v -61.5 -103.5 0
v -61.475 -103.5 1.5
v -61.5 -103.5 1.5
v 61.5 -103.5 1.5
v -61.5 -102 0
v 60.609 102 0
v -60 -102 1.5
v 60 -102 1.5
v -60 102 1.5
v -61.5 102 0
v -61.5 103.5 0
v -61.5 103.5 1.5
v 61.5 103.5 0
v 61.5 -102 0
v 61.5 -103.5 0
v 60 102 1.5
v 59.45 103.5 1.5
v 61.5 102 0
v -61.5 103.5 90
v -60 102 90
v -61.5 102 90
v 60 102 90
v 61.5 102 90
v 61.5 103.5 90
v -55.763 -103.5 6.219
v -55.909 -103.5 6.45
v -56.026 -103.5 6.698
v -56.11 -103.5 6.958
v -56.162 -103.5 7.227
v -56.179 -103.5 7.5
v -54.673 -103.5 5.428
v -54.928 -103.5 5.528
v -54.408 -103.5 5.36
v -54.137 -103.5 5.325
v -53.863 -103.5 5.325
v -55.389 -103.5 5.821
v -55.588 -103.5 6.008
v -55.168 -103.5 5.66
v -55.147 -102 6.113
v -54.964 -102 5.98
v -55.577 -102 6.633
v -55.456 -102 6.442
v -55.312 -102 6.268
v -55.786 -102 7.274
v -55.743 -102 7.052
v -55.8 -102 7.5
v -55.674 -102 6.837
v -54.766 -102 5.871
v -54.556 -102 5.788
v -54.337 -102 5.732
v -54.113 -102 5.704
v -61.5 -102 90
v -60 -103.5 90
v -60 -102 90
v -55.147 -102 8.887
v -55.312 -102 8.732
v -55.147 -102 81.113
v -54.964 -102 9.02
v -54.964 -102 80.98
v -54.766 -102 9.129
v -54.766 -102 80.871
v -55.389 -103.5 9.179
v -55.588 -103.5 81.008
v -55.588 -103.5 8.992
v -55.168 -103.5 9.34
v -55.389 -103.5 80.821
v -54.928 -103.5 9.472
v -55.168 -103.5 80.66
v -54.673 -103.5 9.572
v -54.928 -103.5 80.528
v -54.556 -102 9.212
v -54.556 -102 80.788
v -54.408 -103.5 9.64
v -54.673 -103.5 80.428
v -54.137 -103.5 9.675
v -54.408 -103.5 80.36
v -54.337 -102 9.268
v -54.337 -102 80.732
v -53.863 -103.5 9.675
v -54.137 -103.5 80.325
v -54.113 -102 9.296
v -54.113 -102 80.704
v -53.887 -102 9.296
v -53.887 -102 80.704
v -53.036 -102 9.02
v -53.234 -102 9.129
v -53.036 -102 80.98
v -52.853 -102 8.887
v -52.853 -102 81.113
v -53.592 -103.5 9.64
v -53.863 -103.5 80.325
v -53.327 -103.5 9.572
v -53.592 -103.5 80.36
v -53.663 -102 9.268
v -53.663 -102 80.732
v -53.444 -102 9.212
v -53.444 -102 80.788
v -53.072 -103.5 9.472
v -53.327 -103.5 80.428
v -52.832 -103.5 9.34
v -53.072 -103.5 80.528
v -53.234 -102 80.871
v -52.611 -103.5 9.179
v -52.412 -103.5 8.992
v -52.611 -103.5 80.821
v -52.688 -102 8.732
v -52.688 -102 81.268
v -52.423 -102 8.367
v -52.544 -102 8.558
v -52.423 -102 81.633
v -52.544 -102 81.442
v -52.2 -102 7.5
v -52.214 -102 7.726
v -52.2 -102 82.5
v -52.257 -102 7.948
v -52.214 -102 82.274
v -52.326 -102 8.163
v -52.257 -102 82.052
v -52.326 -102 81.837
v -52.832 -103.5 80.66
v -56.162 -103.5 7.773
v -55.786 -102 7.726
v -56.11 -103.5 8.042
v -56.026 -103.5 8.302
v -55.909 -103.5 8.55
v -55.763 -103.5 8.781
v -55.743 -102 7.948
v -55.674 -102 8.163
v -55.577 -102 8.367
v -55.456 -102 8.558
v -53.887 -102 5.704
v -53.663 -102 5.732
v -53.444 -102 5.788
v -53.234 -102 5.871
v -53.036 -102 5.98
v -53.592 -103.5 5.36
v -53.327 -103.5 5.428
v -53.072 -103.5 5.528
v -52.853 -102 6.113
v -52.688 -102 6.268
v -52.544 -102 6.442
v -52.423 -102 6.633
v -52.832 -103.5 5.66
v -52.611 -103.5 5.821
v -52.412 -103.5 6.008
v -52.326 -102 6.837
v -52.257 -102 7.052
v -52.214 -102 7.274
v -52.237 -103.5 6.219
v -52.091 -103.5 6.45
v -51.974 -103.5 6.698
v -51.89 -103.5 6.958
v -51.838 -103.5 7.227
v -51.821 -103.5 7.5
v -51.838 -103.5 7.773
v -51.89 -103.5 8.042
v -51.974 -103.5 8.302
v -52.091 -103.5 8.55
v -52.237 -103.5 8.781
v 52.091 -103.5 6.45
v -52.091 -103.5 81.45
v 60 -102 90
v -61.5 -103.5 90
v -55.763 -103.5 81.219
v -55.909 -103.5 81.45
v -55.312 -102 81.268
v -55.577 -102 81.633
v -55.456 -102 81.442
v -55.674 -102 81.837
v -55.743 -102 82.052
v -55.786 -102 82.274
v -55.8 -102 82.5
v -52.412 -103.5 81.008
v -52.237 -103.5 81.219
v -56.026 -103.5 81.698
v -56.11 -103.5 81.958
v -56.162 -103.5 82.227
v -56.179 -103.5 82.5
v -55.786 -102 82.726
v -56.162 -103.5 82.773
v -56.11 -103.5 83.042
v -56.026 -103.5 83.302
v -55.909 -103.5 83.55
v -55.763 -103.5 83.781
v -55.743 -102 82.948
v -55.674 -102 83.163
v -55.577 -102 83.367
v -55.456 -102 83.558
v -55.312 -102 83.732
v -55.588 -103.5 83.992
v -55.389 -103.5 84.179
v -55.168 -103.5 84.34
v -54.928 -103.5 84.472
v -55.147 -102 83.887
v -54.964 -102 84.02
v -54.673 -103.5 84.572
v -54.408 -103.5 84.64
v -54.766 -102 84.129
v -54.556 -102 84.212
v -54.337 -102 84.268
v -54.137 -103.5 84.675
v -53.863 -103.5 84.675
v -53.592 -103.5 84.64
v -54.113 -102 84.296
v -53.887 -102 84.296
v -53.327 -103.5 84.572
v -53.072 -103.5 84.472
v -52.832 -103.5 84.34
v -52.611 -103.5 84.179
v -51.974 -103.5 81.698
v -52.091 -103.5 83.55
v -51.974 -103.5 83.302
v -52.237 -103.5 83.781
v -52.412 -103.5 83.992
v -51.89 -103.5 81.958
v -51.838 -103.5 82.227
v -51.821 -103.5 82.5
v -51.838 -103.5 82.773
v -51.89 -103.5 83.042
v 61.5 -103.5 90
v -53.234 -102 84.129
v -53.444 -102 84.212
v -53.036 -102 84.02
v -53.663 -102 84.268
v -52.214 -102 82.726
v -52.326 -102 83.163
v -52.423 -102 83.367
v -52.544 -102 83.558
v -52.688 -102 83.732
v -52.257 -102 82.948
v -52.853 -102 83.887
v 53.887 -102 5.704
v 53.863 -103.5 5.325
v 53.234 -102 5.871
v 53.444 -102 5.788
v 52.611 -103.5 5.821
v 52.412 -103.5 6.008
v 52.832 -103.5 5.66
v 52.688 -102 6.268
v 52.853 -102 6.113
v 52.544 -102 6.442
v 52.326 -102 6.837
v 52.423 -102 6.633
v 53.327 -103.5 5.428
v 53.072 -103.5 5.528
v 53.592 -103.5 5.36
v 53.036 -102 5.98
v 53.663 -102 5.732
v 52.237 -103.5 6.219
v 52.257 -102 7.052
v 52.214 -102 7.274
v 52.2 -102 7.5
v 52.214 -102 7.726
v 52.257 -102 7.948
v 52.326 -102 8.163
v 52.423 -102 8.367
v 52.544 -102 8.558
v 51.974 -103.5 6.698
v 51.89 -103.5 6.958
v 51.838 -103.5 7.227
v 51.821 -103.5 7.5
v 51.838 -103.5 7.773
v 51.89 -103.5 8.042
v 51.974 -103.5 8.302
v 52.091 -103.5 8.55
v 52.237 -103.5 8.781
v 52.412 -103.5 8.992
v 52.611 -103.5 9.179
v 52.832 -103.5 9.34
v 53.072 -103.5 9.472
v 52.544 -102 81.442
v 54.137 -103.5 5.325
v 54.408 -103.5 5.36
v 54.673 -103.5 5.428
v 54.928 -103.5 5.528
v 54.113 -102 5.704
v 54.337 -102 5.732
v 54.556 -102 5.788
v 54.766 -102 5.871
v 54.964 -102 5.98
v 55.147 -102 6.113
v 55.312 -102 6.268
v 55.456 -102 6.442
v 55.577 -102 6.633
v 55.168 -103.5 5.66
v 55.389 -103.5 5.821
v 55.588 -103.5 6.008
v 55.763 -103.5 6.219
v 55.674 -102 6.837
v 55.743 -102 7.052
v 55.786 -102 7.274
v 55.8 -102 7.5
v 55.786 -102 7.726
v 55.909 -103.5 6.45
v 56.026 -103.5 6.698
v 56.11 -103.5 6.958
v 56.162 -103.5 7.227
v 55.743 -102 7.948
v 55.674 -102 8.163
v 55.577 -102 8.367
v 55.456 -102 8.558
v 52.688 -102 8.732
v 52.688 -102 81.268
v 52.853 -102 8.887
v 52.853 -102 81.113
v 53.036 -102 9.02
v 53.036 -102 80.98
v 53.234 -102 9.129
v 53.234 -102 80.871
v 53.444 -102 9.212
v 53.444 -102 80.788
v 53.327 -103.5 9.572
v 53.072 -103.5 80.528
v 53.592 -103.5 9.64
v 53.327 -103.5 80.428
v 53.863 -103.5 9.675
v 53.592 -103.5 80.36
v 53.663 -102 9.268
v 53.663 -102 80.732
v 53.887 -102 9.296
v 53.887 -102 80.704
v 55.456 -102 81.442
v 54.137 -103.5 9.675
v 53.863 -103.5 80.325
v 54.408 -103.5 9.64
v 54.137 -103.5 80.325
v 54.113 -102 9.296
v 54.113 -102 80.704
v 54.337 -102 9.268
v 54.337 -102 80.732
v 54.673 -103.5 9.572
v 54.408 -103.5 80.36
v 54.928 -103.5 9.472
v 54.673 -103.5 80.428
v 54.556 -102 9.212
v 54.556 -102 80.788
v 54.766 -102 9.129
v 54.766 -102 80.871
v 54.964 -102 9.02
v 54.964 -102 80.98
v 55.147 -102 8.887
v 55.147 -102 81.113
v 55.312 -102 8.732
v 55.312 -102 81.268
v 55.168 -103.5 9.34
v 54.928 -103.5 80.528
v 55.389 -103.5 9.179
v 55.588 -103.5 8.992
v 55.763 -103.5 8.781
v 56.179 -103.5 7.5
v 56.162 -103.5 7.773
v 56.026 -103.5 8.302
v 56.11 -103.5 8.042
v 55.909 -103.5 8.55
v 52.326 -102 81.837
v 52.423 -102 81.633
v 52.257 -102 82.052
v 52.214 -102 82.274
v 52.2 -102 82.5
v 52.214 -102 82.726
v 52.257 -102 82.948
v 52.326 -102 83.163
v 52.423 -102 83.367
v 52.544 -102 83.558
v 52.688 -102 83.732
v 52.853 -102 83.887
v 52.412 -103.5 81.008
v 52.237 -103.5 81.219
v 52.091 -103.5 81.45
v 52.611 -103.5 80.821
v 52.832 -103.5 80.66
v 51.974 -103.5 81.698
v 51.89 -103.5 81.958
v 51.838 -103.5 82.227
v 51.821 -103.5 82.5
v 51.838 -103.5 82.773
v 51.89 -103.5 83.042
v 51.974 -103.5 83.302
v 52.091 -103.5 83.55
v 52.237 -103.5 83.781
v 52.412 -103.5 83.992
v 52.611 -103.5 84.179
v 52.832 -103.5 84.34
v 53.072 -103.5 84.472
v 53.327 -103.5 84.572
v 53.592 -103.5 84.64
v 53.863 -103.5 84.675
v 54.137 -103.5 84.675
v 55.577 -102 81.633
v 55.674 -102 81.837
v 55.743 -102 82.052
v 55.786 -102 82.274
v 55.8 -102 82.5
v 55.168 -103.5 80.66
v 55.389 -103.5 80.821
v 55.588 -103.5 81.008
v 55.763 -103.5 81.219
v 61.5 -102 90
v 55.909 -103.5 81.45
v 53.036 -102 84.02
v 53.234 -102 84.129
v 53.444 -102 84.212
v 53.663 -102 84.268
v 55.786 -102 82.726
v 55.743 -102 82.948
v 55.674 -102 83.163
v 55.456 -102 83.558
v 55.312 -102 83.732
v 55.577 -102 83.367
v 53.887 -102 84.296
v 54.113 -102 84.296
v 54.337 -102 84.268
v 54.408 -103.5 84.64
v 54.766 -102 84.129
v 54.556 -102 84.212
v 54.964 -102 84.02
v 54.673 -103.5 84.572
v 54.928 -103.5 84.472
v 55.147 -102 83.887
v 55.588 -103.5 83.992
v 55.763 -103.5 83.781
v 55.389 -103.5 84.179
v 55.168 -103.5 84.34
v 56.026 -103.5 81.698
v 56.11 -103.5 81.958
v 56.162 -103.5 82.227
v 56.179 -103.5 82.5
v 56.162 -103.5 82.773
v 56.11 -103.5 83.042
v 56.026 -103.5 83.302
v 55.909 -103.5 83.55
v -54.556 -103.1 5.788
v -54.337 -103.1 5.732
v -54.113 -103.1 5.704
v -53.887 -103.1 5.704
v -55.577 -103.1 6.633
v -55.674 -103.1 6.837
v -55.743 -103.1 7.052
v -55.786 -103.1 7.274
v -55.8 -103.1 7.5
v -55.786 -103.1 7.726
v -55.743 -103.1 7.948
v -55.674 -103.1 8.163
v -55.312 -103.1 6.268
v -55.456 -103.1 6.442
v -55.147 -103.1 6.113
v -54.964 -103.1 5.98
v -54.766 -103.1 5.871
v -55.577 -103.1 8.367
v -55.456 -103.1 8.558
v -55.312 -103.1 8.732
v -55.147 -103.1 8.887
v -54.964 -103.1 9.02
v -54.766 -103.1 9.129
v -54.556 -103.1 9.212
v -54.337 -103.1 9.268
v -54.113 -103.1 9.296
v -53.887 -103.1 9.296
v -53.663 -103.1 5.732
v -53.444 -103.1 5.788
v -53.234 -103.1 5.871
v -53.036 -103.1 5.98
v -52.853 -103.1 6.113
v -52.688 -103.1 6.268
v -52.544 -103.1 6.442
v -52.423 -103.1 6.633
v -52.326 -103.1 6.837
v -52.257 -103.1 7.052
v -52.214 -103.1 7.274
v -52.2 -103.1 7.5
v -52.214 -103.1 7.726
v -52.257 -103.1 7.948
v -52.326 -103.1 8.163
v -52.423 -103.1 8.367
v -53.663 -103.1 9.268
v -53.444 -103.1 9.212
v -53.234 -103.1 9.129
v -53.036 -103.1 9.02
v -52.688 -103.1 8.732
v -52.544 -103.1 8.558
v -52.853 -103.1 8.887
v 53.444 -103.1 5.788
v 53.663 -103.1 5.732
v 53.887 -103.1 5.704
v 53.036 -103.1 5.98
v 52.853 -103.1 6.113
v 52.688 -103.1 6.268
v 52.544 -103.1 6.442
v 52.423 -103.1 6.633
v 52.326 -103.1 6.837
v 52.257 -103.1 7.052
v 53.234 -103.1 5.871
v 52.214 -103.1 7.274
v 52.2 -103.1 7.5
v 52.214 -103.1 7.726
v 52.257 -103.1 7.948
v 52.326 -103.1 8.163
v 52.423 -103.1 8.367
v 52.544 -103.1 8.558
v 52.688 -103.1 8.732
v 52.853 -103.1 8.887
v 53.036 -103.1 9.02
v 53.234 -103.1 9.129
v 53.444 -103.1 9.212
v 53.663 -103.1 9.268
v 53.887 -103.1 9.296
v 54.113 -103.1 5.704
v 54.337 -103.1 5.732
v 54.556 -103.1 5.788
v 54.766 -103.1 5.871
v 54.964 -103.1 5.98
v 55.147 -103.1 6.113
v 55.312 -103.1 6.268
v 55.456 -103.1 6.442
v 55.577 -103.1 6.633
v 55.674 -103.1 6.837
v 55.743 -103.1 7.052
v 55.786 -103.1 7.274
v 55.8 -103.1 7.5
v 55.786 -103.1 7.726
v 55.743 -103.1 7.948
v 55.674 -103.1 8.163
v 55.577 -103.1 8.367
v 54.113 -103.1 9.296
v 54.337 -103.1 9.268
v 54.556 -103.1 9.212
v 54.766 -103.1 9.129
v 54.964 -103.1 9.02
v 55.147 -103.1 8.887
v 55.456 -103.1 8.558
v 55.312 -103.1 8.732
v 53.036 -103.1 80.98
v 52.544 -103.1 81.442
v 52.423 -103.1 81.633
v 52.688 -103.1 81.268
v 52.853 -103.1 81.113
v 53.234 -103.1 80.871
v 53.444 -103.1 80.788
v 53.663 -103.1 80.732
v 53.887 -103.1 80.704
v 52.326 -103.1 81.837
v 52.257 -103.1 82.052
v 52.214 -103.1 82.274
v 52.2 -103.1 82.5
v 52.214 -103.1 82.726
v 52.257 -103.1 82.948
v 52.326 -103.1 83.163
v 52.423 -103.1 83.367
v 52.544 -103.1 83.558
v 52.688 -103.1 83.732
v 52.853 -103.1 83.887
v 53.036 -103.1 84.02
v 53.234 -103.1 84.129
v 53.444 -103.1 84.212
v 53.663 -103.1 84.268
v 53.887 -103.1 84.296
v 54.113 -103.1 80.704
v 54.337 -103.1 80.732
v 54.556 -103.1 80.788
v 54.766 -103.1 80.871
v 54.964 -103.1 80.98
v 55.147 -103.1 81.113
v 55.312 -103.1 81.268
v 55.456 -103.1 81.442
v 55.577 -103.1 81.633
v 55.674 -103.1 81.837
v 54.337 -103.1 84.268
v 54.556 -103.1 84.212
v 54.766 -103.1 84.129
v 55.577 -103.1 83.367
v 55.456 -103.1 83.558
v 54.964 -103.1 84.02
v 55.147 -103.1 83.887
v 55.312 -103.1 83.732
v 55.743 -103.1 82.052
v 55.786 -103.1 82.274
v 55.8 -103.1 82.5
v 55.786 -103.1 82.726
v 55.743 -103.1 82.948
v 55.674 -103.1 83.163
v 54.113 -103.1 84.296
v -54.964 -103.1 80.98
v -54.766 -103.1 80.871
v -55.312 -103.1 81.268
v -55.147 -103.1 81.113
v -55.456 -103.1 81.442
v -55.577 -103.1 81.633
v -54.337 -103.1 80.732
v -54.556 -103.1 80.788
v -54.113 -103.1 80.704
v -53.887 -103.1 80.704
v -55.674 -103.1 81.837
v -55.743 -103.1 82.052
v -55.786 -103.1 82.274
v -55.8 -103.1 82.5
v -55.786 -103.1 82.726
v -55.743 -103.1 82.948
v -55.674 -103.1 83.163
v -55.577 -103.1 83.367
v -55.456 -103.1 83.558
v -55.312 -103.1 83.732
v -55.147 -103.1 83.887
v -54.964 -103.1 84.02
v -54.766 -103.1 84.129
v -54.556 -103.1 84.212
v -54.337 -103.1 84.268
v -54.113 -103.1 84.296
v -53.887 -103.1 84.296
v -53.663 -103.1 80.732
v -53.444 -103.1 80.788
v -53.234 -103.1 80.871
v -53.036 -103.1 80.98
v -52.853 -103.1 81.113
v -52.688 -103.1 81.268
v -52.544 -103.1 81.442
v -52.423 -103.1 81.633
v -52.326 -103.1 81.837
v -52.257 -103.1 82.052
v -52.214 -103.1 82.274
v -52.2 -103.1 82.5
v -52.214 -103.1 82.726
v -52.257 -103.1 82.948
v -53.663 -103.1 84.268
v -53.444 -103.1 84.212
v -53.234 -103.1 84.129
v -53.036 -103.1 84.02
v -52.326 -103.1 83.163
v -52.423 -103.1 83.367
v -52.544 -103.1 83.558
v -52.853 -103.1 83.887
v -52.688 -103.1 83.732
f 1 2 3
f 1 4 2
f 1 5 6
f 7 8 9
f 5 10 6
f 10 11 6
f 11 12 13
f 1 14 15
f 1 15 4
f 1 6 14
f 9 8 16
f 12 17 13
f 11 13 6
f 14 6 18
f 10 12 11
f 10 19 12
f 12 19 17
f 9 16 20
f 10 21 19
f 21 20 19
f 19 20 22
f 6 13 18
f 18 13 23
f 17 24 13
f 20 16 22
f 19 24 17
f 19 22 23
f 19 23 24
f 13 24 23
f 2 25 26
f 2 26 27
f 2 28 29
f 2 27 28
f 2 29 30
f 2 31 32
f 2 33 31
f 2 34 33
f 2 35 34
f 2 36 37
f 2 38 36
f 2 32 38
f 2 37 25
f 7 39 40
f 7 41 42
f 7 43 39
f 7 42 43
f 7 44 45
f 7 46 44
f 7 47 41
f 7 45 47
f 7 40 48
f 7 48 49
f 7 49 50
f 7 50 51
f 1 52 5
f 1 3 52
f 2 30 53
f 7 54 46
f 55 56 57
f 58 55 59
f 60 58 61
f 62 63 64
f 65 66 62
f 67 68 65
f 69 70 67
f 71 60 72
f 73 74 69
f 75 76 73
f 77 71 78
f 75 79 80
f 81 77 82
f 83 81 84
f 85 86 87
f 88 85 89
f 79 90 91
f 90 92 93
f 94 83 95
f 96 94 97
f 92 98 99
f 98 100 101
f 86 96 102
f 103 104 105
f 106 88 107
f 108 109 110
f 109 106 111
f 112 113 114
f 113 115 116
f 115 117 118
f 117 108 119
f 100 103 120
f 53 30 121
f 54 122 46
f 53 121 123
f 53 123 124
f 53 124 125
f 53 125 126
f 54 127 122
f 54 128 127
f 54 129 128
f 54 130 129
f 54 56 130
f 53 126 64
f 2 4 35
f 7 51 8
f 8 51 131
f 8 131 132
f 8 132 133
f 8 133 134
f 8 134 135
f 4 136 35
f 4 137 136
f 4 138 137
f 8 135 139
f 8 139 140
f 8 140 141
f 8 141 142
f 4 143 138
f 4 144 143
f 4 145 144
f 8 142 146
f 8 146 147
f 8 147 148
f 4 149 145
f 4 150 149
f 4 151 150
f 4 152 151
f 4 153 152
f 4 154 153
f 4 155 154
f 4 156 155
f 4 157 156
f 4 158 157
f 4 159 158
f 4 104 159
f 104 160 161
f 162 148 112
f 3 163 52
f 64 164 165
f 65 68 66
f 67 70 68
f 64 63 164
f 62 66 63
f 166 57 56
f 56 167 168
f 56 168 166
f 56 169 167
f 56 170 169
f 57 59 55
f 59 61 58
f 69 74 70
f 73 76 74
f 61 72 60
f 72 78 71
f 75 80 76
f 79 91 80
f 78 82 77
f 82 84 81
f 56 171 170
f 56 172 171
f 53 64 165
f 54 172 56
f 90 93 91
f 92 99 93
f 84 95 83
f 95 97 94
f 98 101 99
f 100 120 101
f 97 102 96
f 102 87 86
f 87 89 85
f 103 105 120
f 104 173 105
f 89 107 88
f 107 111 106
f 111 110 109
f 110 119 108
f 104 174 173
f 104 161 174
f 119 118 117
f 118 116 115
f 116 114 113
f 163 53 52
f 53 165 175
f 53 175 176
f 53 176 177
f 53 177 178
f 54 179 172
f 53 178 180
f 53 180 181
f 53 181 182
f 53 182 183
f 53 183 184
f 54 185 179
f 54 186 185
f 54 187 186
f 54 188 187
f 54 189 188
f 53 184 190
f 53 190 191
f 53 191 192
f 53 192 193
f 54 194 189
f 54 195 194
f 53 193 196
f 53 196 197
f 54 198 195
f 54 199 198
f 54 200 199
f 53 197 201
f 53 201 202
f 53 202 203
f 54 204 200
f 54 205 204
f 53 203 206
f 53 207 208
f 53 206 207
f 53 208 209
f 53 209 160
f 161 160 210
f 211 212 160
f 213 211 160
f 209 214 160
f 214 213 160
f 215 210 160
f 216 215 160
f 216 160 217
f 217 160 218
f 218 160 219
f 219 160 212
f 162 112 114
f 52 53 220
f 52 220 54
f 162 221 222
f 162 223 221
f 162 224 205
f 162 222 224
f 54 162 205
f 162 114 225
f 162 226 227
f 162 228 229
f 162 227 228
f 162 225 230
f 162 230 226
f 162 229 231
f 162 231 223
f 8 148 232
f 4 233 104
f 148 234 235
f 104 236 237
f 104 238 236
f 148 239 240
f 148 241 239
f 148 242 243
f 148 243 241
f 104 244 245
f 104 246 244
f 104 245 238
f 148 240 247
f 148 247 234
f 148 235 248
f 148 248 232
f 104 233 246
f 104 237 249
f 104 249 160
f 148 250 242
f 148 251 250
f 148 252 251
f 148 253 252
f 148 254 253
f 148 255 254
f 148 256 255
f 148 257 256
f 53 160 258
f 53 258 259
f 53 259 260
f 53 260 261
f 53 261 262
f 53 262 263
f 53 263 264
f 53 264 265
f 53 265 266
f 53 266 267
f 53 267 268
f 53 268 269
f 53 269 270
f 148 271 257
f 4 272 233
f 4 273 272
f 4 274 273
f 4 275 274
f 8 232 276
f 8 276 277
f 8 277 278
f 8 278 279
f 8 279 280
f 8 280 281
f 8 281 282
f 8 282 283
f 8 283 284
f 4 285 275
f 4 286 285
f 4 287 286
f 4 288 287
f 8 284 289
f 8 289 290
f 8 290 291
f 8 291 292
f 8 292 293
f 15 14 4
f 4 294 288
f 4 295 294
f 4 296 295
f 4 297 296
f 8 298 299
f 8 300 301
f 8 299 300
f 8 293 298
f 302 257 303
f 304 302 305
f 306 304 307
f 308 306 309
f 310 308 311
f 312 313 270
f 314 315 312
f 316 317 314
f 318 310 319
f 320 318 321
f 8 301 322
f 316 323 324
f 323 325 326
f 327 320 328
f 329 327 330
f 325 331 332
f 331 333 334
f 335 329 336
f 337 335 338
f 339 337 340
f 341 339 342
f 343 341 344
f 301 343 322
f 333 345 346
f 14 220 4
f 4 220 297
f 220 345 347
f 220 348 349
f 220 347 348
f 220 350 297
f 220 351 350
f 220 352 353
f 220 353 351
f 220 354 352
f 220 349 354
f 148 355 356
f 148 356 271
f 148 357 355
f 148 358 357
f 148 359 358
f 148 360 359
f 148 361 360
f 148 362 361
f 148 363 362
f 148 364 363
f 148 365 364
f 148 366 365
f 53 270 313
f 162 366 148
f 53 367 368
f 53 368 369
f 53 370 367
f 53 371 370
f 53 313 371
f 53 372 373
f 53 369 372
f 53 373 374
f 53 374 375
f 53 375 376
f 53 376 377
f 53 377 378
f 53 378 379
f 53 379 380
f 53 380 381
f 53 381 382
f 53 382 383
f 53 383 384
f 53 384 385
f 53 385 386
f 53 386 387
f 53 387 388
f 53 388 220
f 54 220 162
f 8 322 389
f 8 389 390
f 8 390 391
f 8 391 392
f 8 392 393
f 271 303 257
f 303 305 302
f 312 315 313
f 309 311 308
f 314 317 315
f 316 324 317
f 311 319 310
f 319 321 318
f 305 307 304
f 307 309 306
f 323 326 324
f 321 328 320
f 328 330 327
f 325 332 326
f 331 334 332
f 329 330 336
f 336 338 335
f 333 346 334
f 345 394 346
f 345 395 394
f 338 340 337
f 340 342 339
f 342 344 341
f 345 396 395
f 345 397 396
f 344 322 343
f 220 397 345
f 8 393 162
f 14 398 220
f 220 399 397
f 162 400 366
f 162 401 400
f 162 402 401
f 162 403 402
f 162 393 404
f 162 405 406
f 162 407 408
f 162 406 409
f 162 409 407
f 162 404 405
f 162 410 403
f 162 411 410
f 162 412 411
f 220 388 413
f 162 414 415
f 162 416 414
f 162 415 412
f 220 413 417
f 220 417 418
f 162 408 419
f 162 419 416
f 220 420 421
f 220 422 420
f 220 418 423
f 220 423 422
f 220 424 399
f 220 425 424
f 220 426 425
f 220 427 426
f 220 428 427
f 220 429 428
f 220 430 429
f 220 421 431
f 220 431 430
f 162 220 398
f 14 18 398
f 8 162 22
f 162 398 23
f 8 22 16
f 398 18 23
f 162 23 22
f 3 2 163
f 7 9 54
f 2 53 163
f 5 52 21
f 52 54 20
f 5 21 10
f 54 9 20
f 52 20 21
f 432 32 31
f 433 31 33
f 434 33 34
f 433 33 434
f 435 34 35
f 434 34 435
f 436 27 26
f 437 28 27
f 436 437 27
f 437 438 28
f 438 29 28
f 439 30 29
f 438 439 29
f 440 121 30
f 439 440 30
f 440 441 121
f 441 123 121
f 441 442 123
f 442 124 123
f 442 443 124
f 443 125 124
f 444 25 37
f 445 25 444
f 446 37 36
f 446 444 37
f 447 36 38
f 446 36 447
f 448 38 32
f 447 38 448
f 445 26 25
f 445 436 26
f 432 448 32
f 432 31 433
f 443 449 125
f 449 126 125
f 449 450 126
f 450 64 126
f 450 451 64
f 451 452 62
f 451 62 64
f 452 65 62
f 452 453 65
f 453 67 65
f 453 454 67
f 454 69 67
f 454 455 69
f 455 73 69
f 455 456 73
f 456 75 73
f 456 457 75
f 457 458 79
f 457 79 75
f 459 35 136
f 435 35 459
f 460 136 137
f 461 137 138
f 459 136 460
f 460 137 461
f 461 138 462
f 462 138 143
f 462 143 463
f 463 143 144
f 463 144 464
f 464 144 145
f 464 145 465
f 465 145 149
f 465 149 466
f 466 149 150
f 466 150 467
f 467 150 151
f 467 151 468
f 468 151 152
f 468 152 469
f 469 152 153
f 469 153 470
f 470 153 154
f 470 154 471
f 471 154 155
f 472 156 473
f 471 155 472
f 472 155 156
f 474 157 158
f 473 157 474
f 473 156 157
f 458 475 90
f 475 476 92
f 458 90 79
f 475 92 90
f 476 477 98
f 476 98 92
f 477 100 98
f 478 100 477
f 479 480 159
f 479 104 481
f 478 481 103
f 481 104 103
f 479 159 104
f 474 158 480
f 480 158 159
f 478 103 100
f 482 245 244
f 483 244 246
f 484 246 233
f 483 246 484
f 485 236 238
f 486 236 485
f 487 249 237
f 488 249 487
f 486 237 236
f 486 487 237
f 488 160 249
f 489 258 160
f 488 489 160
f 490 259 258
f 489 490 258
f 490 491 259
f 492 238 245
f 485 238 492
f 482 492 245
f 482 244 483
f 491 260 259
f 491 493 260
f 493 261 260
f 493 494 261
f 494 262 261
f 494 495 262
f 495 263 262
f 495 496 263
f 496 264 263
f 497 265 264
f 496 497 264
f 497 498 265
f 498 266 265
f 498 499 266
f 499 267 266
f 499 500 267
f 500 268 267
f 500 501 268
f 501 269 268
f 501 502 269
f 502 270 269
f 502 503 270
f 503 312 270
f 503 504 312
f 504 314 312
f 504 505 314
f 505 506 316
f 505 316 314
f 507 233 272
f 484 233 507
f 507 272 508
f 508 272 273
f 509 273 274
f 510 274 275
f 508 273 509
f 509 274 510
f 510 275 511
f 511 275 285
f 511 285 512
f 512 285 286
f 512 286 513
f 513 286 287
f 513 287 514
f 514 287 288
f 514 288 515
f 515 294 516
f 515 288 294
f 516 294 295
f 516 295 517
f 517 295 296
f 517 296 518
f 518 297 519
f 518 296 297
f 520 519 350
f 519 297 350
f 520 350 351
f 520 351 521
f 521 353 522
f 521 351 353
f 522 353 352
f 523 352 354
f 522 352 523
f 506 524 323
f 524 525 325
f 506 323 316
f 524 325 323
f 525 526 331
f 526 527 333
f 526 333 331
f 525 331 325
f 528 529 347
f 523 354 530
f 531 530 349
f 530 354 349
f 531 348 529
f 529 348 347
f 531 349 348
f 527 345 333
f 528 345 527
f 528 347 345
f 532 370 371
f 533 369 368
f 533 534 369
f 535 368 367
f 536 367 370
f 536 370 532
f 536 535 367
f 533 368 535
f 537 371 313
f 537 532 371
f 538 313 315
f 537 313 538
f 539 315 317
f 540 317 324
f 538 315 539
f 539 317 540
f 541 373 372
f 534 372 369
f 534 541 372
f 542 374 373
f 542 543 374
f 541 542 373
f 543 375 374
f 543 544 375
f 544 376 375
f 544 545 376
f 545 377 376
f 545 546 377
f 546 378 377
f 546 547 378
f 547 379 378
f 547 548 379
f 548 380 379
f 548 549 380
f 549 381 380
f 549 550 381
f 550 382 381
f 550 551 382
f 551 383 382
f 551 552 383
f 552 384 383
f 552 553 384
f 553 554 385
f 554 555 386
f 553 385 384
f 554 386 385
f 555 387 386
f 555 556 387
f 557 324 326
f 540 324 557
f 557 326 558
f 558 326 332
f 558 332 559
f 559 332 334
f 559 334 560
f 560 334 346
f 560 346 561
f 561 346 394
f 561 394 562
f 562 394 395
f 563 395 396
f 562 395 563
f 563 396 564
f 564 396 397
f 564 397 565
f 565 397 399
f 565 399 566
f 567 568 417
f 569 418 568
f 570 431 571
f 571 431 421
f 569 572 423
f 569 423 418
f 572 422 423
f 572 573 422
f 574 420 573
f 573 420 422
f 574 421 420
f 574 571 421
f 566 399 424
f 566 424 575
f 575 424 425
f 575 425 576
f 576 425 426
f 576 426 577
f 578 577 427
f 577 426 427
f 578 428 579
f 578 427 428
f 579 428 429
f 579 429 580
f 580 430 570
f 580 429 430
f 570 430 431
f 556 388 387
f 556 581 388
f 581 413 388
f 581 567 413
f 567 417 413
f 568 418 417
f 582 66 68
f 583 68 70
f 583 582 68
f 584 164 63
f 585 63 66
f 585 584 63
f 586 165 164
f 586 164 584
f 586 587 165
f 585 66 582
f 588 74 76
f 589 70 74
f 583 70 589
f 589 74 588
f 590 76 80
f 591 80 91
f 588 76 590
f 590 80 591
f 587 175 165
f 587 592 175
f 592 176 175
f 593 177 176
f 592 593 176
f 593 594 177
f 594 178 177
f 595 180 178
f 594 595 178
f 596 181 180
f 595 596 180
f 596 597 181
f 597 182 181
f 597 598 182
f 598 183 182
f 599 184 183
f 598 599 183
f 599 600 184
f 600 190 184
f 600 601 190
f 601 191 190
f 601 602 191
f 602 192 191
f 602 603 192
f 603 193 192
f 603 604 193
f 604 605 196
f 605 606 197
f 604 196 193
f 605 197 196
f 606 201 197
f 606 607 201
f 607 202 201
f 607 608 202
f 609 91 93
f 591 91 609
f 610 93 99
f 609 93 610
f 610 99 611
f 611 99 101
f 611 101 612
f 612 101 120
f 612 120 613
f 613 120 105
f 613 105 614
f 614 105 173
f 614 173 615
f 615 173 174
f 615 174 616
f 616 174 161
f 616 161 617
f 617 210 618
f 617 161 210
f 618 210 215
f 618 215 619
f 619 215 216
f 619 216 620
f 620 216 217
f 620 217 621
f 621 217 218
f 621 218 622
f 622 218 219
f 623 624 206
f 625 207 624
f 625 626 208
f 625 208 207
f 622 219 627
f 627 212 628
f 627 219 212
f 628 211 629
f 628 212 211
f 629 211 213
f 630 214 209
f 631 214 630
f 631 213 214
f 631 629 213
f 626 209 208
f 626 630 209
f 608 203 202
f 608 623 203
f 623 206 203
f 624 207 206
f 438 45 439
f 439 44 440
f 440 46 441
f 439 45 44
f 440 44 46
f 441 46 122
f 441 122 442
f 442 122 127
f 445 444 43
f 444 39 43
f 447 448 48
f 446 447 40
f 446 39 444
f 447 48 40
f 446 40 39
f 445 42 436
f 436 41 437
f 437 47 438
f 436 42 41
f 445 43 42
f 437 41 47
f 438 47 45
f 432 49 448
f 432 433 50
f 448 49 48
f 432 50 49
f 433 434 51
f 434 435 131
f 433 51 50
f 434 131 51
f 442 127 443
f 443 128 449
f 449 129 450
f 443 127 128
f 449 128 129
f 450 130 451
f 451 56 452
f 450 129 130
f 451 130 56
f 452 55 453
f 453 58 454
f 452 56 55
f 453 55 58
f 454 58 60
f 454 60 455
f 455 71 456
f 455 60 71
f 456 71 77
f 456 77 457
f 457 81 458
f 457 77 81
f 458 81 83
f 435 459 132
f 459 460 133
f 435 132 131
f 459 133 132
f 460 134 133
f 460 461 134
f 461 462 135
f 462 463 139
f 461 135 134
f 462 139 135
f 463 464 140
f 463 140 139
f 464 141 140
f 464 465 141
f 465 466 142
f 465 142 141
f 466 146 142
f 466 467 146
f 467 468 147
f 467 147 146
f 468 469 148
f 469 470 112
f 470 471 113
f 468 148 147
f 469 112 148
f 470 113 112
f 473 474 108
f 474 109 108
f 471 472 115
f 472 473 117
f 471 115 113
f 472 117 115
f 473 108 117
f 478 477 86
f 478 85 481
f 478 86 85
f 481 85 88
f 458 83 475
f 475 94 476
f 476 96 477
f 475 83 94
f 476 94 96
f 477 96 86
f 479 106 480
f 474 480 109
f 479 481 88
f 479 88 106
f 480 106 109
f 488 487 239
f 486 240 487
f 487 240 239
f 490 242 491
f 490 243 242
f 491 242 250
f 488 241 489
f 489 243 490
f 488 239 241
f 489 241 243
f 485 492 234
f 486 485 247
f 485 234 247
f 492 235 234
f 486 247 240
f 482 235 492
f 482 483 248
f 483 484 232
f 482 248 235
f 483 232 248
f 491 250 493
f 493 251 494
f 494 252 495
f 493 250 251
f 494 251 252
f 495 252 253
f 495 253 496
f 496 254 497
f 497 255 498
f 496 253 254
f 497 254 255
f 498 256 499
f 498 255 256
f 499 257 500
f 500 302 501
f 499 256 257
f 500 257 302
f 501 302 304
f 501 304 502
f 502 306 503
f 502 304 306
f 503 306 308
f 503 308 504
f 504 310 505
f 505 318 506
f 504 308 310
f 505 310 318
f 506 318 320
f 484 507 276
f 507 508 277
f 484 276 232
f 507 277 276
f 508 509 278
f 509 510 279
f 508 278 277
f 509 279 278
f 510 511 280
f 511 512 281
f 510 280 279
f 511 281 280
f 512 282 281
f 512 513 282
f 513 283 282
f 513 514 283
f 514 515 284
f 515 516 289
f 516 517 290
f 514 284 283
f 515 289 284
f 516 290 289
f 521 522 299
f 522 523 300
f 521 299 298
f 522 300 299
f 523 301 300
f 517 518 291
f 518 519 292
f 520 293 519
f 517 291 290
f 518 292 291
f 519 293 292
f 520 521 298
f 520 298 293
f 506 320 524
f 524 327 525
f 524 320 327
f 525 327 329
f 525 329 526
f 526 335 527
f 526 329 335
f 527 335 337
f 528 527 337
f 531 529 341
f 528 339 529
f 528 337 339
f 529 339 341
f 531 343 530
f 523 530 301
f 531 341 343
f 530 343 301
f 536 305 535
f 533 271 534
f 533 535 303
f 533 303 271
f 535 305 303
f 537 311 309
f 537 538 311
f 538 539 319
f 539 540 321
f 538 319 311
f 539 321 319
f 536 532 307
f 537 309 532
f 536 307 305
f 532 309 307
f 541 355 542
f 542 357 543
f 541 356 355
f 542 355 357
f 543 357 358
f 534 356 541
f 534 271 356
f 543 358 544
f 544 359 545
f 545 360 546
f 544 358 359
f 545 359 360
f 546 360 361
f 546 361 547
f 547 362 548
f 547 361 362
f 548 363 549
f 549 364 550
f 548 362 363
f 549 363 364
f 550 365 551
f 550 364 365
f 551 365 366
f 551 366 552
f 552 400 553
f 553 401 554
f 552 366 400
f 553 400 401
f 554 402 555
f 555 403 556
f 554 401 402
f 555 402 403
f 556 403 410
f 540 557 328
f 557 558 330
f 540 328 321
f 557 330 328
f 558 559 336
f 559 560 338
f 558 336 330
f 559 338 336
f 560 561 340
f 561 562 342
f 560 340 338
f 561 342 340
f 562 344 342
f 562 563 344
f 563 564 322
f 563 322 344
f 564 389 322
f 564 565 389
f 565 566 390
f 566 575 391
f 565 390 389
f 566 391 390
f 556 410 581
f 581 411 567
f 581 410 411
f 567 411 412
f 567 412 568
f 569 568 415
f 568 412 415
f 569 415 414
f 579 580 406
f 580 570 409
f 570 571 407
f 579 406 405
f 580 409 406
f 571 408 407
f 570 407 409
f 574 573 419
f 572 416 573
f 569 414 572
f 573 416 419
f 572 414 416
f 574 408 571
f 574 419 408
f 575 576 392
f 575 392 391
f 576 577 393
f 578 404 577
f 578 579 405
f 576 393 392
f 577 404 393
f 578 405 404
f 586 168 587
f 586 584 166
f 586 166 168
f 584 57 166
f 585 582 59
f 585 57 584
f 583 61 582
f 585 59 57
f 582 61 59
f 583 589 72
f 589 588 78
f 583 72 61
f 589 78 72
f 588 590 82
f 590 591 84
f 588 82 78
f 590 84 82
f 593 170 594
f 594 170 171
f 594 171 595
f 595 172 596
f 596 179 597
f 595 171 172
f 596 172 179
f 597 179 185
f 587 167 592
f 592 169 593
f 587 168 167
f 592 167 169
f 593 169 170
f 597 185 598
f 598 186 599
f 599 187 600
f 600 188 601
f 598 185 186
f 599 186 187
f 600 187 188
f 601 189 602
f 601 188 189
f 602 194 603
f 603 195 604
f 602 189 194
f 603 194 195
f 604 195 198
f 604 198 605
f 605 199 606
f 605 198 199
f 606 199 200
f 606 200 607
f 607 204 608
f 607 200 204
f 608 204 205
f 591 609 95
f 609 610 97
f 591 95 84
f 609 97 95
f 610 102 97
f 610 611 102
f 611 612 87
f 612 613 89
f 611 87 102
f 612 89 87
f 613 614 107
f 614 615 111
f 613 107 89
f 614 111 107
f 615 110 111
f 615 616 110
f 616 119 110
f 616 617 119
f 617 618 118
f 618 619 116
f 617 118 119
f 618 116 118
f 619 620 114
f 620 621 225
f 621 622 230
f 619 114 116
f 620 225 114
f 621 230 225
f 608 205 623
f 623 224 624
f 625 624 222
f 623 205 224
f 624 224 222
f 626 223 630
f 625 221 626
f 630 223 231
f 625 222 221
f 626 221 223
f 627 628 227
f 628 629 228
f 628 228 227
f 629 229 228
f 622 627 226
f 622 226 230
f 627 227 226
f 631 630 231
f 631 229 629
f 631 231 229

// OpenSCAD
$fn = 50;


difference() {
	union() {
		translate(v = [-61.5000000000, -103.5000000000, 0]) {
			cube(size = [123, 207, 1.5000000000]);
		}
		translate(v = [-61.5000000000, 102.0000000000, 0]) {
			cube(size = [123, 1.5000000000, 90]);
		}
		translate(v = [-61.5000000000, -103.5000000000, 0]) {
			cube(size = [123, 1.5000000000, 90]);
		}
		translate(v = [60.0000000000, -103.5000000000, 0]) {
			cube(size = [1.5000000000, 207, 90]);
		}
		translate(v = [-61.5000000000, -103.5000000000, 0]) {
			cube(size = [1.5000000000, 207, 90]);
		}
	}
	union() {
		translate(v = [54.0000000000, -105.0000000000, 82.5000000000]) {
			rotate(a = [90, 0, 0]) {
				difference() {
					union() {
						#translate(v = [0, 0, -15.0000000000]) {
							cylinder(h = 15, r = 1.5000000000);
						}
						#translate(v = [0, 0, -1.9000000000]) {
							cylinder(h = 1.9000000000, r1 = 1.8000000000, r2 = 3.6000000000);
						}
						#translate(v = [0, 0, -15.0000000000]) {
							cylinder(h = 15, r = 1.8000000000);
						}
						#translate(v = [0, 0, -15.0000000000]) {
							cylinder(h = 15, r = 1.5000000000);
						}
					}
					union();
				}
			}
		}
		translate(v = [-54.0000000000, -105.0000000000, 82.5000000000]) {
			rotate(a = [90, 0, 0]) {
				difference() {
					union() {
						#translate(v = [0, 0, -15.0000000000]) {
							cylinder(h = 15, r = 1.5000000000);
						}
						#translate(v = [0, 0, -1.9000000000]) {
							cylinder(h = 1.9000000000, r1 = 1.8000000000, r2 = 3.6000000000);
						}
						#translate(v = [0, 0, -15.0000000000]) {
							cylinder(h = 15, r = 1.8000000000);
						}
						#translate(v = [0, 0, -15.0000000000]) {
							cylinder(h = 15, r = 1.5000000000);
						}
					}
					union();
				}
			}
		}
		translate(v = [54.0000000000, -105.0000000000, 7.5000000000]) {
			rotate(a = [90, 0, 0]) {
				difference() {
					union() {
						#translate(v = [0, 0, -15.0000000000]) {
							cylinder(h = 15, r = 1.5000000000);
						}
						#translate(v = [0, 0, -1.9000000000]) {
							cylinder(h = 1.9000000000, r1 = 1.8000000000, r2 = 3.6000000000);
						}
						#translate(v = [0, 0, -15.0000000000]) {
							cylinder(h = 15, r = 1.8000000000);
						}
						#translate(v = [0, 0, -15.0000000000]) {
							cylinder(h = 15, r = 1.5000000000);
						}
					}
					union();
				}
			}
		}
		translate(v = [-54.0000000000, -105.0000000000, 7.5000000000]) {
			rotate(a = [90, 0, 0]) {
				difference() {
					union() {
						#translate(v = [0, 0, -15.0000000000]) {
							cylinder(h = 15, r = 1.5000000000);
						}
						#translate(v = [0, 0, -1.9000000000]) {
							cylinder(h = 1.9000000000, r1 = 1.8000000000, r2 = 3.6000000000);
						}
						#translate(v = [0, 0, -15.0000000000]) {
							cylinder(h = 15, r = 1.8000000000);
						}
						#translate(v = [0, 0, -15.0000000000]) {
							cylinder(h = 15, r = 1.5000000000);
						}
					}
					union();
				}
			}
		}
	}
}
